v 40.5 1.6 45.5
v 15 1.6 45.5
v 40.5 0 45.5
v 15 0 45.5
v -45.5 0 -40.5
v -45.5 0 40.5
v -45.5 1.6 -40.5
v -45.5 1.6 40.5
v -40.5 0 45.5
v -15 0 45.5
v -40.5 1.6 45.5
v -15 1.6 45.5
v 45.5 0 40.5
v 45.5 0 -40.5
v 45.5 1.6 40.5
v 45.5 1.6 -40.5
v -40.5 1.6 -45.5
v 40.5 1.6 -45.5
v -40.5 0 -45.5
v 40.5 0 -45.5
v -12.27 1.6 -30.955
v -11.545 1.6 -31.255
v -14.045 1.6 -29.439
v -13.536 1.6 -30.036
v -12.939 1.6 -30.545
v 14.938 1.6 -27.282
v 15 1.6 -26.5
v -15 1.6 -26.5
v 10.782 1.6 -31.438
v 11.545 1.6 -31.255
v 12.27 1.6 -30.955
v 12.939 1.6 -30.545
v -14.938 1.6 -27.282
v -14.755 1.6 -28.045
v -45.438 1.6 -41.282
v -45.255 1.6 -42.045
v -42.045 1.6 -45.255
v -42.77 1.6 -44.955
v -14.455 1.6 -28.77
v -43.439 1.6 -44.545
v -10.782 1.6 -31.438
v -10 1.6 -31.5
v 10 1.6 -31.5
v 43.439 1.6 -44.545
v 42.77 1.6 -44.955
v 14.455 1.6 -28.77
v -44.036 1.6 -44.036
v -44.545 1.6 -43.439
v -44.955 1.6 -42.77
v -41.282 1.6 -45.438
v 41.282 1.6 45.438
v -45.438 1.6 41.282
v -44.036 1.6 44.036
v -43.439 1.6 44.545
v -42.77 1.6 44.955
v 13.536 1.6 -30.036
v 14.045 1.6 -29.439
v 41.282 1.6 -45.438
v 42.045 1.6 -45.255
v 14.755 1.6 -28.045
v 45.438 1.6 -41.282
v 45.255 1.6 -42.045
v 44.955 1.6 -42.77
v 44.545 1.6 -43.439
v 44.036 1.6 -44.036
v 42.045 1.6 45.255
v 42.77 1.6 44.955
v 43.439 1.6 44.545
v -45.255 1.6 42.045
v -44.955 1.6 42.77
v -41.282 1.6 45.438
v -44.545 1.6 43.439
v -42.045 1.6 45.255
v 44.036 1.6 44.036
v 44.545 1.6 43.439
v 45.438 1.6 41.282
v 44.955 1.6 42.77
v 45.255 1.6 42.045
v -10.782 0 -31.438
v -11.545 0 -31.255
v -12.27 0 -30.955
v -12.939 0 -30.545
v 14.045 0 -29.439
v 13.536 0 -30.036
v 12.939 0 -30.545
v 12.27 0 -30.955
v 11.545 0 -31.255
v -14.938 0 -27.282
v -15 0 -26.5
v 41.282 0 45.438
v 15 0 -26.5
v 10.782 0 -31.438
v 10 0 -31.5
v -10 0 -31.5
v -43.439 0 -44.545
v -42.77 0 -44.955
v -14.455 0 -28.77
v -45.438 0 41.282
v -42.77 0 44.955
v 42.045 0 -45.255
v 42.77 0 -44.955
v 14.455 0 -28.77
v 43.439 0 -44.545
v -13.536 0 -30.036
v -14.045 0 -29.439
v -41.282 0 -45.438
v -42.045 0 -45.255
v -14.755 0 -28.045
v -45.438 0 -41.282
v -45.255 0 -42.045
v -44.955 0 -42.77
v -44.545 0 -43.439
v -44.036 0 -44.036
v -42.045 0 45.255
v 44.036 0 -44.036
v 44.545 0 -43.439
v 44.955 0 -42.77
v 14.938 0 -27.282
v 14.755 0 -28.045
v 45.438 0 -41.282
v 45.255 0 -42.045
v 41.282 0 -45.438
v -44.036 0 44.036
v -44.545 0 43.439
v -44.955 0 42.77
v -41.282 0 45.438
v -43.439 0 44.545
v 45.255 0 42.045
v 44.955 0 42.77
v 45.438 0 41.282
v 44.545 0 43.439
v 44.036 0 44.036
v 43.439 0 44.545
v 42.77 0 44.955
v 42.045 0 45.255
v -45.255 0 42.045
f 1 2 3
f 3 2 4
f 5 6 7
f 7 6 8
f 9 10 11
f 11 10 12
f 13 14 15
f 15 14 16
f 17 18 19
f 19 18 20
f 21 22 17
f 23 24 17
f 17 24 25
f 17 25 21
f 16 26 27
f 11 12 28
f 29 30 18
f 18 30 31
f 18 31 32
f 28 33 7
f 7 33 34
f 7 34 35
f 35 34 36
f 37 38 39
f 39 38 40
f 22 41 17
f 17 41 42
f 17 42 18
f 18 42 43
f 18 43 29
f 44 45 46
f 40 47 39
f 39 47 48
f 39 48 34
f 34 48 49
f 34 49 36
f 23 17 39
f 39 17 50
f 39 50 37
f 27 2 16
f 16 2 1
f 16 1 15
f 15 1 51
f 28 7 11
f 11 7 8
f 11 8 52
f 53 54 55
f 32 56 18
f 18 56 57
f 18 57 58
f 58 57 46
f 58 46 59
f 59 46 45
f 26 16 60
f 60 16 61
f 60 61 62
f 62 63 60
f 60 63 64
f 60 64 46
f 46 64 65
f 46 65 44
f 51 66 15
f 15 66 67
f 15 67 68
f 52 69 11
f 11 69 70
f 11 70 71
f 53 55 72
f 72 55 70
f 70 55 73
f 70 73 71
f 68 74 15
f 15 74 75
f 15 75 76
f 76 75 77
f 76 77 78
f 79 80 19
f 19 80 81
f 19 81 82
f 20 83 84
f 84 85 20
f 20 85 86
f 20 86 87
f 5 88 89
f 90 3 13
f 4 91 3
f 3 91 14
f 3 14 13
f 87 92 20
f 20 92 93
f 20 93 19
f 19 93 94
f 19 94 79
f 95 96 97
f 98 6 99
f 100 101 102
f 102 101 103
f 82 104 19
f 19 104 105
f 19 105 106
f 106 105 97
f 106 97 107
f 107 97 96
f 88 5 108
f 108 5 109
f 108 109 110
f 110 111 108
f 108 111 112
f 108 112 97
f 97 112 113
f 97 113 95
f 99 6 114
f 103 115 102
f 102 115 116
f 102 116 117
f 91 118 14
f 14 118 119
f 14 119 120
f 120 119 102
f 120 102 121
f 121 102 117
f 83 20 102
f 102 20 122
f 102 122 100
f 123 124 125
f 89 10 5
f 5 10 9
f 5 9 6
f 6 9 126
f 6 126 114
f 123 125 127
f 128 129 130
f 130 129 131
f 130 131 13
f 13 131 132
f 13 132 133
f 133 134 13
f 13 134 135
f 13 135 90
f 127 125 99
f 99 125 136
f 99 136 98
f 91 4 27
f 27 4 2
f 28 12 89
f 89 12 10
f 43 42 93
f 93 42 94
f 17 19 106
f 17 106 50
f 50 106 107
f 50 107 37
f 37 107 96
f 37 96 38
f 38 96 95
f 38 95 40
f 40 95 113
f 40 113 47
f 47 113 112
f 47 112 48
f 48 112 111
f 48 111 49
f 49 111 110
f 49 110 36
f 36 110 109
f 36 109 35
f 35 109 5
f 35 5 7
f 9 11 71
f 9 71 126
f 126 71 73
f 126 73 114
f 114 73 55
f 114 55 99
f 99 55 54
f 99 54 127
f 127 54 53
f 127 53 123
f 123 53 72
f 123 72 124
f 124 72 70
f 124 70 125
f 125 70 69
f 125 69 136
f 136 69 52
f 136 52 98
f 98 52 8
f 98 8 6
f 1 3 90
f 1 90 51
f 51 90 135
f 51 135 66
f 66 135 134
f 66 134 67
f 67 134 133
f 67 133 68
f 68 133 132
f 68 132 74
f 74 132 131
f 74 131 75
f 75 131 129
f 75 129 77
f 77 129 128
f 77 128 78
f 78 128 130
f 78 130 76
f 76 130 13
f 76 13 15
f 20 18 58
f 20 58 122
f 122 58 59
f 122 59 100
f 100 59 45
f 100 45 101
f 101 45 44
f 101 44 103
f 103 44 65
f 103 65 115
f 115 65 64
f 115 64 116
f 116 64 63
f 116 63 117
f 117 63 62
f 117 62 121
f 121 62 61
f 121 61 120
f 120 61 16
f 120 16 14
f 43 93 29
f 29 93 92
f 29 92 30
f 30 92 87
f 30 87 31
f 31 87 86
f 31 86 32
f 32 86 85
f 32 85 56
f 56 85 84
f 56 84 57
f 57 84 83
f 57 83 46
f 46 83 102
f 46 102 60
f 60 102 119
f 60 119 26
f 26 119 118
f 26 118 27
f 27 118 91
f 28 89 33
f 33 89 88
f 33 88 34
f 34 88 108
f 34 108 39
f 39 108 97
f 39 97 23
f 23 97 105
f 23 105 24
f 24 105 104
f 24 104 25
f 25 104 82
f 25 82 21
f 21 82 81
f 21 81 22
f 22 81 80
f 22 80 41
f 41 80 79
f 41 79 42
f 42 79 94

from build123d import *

# Parameters (mm, degrees)
SKETCH1_W           = 91
SKETCH1_H           = 91
BOSS_EXTRUDE1_DEPTH = 1.6
SKETCH2_W           = 30
SKETCH2_H           = 77
CUT_EXTRUDE1_DEPTH  = 65.366606249
FILLET1_R           = 5


with BuildPart() as part:
    # Sketch1 → Boss-Extrude1 (new body)
    with BuildSketch(Plane(origin=(0, 0, 0), x_dir=(1, 0, 0), z_dir=(0, 1, 0))):
        Rectangle(SKETCH1_W, SKETCH1_H)
    extrude(amount=BOSS_EXTRUDE1_DEPTH)

    # Sketch2 → Cut-Extrude1 (cut, through all)
    with BuildSketch(Plane(origin=(0, 1.6, 0), x_dir=(1, 0, 0), z_dir=(0, 1, 0))):
        with Locations((0, -7)):
            Rectangle(SKETCH2_W, SKETCH2_H)
    extrude(amount=-CUT_EXTRUDE1_DEPTH, mode=Mode.SUBTRACT)

    # Fillet1
    fillet1_edges = [part.edges().sort_by_distance(p)[0] for p in [
        (15, 0.8, -31.5),
        (-15, 0.8, -31.5),
        (-45.5, 0.8, 45.5),
        (45.5, 0.8, 45.5),
        (45.5, 0.8, -45.5),
        (-45.5, 0.8, -45.5),
    ]]
    fillet(fillet1_edges, radius=FILLET1_R)


solid = part.part
